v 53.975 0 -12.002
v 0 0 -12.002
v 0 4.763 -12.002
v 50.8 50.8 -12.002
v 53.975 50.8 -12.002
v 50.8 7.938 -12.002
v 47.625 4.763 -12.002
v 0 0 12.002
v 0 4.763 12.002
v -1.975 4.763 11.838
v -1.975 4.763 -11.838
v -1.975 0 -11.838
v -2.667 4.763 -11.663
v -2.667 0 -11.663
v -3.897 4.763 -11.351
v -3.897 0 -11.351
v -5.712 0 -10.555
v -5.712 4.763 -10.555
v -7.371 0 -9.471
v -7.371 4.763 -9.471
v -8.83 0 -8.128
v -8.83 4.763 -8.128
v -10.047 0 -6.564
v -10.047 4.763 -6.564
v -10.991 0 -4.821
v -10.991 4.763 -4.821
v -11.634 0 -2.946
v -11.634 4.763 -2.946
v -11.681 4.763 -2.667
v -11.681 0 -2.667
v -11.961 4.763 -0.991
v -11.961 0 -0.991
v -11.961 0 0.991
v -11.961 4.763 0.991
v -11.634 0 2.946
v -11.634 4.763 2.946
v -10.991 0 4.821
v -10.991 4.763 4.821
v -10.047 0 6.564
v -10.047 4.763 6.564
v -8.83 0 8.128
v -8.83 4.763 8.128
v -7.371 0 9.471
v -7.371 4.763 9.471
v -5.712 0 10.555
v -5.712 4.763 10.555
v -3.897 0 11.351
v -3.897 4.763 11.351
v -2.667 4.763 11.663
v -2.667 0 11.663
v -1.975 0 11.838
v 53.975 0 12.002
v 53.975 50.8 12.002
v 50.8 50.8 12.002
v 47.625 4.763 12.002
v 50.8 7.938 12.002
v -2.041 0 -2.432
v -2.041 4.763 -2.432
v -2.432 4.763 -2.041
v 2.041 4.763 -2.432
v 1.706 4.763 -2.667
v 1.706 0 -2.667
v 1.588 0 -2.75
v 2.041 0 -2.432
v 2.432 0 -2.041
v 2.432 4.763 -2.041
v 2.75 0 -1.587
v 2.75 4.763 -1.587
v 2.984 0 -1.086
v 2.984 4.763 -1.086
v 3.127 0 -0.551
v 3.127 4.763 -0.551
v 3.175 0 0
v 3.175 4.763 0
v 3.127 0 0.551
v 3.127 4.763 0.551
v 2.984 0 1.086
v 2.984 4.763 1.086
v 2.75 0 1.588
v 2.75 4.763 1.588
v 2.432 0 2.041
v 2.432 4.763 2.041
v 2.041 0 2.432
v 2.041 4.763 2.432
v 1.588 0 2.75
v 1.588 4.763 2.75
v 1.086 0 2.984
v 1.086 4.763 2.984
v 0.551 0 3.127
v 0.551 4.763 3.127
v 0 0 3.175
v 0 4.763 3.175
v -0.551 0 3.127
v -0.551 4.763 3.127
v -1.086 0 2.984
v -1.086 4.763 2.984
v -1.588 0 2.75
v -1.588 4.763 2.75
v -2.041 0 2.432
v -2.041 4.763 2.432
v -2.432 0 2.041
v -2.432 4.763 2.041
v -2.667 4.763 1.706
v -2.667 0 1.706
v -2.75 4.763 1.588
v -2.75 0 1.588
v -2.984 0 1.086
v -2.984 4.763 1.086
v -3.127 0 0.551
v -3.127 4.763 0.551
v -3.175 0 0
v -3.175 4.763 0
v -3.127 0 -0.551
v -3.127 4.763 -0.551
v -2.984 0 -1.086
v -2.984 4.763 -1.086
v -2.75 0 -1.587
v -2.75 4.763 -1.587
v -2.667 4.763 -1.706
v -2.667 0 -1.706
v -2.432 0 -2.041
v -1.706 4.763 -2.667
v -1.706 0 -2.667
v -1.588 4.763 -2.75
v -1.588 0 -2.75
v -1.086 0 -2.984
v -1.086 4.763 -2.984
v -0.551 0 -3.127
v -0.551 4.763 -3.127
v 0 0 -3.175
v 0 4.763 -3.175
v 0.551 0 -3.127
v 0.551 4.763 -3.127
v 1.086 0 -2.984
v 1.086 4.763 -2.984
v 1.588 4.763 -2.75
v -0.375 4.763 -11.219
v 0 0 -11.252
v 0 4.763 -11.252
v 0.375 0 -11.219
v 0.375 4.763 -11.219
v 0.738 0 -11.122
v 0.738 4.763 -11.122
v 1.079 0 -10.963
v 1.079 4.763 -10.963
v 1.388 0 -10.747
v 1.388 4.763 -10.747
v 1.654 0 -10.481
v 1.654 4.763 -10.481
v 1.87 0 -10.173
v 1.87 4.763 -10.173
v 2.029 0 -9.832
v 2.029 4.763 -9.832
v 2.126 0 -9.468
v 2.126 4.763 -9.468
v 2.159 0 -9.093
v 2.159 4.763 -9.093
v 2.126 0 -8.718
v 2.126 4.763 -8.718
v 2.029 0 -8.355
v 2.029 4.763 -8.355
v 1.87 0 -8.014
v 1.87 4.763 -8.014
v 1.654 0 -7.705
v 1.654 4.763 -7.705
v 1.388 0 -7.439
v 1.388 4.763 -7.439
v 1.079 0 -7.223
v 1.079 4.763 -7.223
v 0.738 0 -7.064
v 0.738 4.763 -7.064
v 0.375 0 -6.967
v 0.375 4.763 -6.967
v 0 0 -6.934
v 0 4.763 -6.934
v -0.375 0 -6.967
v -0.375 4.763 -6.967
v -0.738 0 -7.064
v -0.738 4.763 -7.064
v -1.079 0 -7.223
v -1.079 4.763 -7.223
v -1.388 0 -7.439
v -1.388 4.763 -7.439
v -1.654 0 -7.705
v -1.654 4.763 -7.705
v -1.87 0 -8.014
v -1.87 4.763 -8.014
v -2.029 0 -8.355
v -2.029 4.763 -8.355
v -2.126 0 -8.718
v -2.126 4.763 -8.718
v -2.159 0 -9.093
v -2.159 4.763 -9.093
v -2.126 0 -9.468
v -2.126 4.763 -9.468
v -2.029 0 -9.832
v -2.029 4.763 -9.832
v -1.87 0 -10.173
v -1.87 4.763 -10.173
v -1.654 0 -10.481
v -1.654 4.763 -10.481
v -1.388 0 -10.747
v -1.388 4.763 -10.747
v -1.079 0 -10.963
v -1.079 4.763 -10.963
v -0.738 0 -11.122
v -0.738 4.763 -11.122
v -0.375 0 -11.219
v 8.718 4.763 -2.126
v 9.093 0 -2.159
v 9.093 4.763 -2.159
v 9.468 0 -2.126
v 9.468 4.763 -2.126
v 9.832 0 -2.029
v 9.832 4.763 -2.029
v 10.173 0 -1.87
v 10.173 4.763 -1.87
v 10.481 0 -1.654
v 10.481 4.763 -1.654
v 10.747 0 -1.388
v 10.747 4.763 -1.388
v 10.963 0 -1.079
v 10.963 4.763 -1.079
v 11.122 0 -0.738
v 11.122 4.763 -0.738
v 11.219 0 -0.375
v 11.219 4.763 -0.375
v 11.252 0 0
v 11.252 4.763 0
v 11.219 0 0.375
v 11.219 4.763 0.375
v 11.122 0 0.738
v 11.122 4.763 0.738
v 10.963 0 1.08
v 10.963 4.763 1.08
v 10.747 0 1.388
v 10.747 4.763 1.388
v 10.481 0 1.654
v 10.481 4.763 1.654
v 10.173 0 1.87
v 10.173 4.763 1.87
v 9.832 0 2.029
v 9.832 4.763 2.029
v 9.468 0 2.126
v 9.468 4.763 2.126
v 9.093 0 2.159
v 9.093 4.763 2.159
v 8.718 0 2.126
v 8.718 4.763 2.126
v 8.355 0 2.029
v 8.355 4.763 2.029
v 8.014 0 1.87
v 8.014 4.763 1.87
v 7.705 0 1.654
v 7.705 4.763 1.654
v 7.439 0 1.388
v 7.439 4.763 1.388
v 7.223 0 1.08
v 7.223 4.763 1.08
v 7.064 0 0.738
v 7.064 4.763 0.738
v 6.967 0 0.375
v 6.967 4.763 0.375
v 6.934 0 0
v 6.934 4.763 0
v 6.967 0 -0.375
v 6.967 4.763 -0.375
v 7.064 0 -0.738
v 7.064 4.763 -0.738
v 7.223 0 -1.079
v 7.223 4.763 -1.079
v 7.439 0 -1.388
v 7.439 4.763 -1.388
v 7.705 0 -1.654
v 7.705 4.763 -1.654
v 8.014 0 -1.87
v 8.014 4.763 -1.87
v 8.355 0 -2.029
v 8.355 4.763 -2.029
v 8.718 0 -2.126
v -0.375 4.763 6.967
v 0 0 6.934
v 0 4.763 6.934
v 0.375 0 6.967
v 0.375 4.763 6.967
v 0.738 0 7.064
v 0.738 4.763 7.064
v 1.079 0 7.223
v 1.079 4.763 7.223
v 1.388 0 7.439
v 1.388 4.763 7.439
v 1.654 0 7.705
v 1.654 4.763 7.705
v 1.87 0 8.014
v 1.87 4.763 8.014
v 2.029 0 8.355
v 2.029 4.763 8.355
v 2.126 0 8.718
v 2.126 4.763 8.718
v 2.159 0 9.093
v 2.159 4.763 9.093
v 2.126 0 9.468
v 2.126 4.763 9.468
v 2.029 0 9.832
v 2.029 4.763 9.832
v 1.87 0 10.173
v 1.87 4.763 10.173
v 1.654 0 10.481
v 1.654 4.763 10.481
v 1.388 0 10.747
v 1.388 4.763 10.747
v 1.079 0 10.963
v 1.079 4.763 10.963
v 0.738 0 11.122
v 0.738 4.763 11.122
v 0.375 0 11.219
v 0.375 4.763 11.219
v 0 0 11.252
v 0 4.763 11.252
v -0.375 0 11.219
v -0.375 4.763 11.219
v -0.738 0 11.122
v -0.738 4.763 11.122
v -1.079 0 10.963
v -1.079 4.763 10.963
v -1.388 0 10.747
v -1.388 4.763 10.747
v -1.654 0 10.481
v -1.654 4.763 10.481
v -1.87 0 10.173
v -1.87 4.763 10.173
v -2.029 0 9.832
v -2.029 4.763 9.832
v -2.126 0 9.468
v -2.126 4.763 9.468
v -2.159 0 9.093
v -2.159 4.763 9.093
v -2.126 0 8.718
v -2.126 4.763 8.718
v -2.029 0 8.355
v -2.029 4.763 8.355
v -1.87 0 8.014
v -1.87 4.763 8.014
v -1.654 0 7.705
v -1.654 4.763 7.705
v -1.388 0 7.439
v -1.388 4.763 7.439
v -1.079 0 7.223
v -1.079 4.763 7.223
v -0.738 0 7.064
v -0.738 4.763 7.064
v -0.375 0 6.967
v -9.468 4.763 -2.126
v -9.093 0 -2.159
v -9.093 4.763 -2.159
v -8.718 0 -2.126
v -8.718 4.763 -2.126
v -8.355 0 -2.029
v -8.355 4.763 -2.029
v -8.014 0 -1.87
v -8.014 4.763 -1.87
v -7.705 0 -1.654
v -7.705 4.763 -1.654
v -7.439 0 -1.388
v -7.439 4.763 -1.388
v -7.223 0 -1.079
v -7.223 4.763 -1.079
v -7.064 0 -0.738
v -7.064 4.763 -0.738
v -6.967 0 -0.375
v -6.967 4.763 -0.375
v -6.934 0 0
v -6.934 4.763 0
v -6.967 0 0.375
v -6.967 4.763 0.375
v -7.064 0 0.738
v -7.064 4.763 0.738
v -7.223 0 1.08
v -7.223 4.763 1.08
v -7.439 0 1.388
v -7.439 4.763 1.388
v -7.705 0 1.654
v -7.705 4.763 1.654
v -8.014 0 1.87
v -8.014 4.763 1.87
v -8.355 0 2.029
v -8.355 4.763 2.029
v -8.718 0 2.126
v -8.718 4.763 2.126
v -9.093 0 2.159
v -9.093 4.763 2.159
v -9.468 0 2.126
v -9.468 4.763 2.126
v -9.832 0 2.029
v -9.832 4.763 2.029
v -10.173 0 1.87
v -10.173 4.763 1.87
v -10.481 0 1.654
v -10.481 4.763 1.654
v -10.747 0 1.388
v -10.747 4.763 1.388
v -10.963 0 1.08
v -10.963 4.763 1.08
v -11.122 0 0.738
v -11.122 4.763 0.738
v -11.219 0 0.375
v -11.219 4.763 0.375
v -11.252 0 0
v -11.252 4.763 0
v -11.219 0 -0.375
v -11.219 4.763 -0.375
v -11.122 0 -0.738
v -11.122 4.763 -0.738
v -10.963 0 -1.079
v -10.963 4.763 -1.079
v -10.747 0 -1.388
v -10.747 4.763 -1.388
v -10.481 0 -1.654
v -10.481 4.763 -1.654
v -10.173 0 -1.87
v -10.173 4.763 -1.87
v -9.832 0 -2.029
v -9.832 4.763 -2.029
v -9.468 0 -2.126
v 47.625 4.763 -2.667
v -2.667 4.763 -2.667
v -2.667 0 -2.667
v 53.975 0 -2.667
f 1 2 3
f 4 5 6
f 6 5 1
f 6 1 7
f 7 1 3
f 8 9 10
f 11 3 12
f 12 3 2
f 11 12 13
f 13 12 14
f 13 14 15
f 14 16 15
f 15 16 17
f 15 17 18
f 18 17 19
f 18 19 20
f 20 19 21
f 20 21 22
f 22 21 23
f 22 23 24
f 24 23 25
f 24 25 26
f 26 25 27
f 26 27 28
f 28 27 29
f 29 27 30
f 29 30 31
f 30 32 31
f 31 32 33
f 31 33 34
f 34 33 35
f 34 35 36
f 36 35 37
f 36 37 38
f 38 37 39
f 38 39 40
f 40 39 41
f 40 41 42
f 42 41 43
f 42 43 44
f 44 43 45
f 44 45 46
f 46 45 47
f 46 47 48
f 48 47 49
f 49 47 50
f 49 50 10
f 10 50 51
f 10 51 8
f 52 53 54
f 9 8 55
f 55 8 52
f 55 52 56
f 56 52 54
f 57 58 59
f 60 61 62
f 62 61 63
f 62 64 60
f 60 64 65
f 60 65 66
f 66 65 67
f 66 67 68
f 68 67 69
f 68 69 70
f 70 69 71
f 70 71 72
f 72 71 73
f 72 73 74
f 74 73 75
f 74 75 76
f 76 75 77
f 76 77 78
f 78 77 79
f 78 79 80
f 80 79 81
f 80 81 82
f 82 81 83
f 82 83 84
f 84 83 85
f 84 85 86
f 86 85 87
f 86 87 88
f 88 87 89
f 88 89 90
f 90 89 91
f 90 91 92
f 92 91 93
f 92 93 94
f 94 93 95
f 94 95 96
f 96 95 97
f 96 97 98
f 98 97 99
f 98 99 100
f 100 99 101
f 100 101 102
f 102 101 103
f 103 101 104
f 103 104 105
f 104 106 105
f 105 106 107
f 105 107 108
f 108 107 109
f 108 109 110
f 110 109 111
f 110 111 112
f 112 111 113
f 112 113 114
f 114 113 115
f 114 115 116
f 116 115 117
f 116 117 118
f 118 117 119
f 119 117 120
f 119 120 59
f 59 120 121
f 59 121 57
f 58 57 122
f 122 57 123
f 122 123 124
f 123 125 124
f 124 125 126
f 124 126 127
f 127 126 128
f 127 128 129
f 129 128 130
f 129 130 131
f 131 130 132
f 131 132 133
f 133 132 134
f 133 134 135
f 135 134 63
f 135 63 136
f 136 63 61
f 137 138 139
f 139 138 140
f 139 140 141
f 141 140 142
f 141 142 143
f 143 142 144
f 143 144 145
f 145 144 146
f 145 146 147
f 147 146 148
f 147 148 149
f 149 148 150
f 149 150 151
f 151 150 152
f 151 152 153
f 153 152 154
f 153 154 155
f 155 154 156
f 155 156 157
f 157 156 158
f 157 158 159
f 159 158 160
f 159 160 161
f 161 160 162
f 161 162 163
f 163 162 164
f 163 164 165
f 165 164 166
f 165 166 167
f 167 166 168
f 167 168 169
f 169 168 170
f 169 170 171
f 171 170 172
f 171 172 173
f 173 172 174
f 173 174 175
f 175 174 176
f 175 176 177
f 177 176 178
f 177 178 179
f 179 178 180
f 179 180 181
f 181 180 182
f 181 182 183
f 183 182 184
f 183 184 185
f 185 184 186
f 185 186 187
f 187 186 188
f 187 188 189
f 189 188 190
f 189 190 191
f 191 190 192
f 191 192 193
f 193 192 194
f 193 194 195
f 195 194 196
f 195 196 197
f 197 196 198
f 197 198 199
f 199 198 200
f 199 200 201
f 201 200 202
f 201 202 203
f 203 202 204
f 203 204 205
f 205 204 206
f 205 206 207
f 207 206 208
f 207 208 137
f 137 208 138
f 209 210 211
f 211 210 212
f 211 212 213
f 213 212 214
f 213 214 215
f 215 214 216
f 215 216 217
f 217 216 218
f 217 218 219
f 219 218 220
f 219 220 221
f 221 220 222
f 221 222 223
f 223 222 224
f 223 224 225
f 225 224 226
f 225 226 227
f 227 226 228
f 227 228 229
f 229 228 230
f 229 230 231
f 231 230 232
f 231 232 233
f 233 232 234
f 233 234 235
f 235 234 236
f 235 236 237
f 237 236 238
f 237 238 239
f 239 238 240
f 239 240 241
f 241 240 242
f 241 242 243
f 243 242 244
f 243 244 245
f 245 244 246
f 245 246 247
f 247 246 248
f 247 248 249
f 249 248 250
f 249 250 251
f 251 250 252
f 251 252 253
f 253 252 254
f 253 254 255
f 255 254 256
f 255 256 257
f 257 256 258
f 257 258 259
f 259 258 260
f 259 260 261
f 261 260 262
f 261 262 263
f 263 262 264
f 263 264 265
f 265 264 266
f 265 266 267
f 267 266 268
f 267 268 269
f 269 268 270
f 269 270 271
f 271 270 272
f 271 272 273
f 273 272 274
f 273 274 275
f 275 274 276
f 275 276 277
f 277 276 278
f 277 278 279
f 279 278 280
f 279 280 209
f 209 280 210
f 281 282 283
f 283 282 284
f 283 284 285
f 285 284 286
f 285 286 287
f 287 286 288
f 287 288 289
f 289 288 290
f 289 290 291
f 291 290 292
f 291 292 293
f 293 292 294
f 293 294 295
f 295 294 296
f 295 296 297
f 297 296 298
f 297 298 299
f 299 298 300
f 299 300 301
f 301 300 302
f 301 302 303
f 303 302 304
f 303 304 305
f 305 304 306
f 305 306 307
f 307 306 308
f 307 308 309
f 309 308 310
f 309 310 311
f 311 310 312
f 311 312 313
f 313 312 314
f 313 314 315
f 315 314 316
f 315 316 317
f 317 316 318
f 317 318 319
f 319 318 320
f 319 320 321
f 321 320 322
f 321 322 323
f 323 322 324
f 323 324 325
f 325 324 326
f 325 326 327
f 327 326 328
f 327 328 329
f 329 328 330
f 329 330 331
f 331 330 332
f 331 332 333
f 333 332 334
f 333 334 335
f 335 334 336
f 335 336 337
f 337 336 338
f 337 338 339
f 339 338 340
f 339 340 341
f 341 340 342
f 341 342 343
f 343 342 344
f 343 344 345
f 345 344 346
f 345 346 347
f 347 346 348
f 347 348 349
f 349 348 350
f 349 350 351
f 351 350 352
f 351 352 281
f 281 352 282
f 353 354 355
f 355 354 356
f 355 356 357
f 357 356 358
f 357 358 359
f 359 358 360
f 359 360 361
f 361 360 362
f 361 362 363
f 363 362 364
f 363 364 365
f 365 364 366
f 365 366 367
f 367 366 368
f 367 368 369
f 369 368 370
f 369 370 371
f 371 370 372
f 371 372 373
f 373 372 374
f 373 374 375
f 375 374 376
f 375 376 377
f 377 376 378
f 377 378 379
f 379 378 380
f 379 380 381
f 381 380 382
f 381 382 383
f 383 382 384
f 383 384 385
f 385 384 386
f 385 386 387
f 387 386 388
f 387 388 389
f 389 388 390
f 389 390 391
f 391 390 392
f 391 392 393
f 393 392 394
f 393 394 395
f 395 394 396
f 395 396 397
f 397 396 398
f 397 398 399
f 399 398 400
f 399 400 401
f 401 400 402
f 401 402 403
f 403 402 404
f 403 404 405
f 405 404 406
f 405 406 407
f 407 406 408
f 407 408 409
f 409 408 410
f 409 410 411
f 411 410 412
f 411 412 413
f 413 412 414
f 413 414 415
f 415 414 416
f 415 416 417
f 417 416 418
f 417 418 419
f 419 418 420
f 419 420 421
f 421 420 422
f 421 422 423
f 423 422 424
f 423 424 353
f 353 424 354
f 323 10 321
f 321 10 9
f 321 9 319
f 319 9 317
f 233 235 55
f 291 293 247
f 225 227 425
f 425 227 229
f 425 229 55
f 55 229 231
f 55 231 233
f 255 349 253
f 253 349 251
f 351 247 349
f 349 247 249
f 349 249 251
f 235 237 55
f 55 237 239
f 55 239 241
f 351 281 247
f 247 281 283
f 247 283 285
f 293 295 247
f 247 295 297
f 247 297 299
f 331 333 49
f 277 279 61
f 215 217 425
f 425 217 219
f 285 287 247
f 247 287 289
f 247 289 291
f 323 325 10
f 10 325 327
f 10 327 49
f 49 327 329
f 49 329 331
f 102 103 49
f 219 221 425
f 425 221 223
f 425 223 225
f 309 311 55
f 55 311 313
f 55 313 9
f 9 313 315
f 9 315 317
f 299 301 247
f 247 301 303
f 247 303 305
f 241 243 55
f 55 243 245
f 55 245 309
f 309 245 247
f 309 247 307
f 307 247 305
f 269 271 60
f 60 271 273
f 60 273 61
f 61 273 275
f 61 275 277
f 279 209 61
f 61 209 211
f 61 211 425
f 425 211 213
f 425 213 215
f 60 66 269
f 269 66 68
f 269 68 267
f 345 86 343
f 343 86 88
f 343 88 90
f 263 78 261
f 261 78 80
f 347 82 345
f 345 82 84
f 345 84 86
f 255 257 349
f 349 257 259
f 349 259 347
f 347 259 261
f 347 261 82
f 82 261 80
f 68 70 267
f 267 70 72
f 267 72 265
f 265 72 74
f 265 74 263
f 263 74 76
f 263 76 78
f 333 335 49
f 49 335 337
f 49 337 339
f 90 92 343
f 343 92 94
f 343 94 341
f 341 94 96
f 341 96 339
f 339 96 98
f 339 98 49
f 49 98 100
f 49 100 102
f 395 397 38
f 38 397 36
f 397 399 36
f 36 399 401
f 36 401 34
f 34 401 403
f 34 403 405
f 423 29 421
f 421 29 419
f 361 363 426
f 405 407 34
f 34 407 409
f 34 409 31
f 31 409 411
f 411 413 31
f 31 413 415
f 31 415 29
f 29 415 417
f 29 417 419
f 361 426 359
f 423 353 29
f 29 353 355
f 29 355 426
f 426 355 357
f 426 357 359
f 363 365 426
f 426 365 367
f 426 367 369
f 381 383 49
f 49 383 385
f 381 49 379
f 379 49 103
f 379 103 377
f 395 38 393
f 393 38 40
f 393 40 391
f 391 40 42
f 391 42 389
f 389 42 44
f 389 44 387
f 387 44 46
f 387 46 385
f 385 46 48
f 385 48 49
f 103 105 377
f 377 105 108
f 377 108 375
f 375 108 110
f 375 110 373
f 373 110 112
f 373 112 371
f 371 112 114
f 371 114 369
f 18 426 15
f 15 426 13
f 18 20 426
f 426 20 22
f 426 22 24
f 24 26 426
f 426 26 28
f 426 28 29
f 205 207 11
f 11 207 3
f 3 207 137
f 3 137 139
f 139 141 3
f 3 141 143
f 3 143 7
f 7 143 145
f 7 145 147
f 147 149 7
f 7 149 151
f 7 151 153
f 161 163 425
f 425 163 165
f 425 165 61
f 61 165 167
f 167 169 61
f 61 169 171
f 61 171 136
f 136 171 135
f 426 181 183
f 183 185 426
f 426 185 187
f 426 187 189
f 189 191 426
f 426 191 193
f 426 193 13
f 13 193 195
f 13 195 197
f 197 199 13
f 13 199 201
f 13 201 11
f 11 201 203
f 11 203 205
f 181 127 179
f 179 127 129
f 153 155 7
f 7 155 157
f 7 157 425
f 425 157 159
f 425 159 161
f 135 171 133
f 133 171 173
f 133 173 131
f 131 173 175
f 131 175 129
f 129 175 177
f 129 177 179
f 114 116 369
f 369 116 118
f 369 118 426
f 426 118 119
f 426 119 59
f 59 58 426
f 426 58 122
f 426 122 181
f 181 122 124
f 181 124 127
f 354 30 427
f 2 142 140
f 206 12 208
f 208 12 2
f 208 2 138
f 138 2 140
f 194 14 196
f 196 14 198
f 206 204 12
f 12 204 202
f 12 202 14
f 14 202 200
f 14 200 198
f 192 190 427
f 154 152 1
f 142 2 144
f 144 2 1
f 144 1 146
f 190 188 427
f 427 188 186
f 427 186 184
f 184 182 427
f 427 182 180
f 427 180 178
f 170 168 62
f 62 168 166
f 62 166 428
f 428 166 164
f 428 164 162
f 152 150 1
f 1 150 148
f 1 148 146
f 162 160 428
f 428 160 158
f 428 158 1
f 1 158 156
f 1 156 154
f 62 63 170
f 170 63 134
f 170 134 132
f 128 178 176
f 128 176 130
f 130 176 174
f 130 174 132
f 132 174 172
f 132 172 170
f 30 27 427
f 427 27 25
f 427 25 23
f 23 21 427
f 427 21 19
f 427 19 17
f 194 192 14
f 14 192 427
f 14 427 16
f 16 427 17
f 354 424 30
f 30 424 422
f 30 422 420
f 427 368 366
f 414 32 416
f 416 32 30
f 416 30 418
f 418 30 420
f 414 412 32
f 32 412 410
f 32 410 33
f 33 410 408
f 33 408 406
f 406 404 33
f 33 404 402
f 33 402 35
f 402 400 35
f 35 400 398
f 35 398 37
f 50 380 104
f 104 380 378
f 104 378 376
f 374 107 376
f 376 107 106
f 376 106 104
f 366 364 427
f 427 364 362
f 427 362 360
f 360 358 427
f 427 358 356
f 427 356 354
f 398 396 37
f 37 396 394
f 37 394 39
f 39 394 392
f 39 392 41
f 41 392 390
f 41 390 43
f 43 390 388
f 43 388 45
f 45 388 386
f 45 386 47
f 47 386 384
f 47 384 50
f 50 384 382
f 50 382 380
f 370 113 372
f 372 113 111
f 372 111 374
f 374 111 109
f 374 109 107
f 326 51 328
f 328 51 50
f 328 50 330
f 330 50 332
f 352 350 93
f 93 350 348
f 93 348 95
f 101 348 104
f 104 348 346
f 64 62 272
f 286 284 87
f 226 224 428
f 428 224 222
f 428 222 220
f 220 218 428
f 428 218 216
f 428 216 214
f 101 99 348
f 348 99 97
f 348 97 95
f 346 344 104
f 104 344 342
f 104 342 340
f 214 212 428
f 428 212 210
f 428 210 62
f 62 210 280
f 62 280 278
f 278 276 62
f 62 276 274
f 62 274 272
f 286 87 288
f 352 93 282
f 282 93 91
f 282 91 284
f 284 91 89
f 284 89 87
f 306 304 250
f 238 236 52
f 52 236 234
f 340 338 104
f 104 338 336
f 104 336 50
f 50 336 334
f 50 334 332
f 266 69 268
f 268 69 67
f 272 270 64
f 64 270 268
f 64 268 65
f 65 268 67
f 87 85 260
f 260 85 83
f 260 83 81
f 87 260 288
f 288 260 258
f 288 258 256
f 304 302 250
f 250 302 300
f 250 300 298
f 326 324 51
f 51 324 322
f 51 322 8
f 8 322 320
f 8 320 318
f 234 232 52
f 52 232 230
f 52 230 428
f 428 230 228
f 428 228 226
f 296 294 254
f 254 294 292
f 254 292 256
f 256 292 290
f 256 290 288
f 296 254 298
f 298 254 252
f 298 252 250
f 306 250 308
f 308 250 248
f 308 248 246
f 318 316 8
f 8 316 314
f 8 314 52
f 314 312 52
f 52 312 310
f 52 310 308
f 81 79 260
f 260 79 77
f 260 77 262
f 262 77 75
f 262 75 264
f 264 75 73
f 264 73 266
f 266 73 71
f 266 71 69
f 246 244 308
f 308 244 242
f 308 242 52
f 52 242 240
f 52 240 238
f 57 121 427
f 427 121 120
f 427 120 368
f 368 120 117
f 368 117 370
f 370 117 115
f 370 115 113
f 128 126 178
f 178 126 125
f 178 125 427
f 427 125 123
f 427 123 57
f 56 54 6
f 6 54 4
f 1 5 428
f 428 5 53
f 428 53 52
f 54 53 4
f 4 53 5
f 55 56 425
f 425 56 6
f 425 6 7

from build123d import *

# Parameters (mm, degrees)
SKETCH1_R           = 2.159
SKETCH1_R_2         = 3.175
BOSS_EXTRUDE1_DEPTH = 4.7625
SKETCH1_3_W         = 3.175
SKETCH1_3_H         = 24.003
BOSS_EXTRUDE2_DEPTH = 50.8
CHAMFER1_SIZE       = 3.175


with BuildPart() as part:
    # Sketch1 → Boss-Extrude1 (new body)
    with BuildSketch(Plane(origin=(0, 0, 0), x_dir=(1, 0, 0), z_dir=(0, 1, 0))):
        with BuildLine():
            Line((0, -12.0015), (50.8, -12.0015))
            Line((50.8, -12.0015), (50.8, 12.0015))
            Line((50.8, 12.0015), (0, 12.0015))
            ThreePointArc((0, 12.0015), (-12.0015, 0), (0, -12.0015))
        make_face()
        with Locations((0, -9.0932)):
            Circle(SKETCH1_R, mode=Mode.SUBTRACT)
        with Locations((-9.0932, 0)):
            Circle(SKETCH1_R, mode=Mode.SUBTRACT)
        Circle(SKETCH1_R_2, mode=Mode.SUBTRACT)
        with Locations((9.0932, 0)):
            Circle(SKETCH1_R, mode=Mode.SUBTRACT)
        with Locations((0, 9.0932)):
            Circle(SKETCH1_R, mode=Mode.SUBTRACT)
    extrude(amount=BOSS_EXTRUDE1_DEPTH)

    # Sketch1<3> → Boss-Extrude2 (add)
    with BuildSketch(Plane(origin=(0, 0, 0), x_dir=(1, 0, 0), z_dir=(0, 1, 0))):
        with Locations((52.3875, 0)):
            Rectangle(SKETCH1_3_W, SKETCH1_3_H)
    extrude(amount=BOSS_EXTRUDE2_DEPTH)

    # Chamfer1
    chamfer1_edges = [part.edges().sort_by_distance(p)[0] for p in [
        (50.8, 4.7625, 0),
    ]]
    chamfer(chamfer1_edges, length=CHAMFER1_SIZE)


solid = part.part
